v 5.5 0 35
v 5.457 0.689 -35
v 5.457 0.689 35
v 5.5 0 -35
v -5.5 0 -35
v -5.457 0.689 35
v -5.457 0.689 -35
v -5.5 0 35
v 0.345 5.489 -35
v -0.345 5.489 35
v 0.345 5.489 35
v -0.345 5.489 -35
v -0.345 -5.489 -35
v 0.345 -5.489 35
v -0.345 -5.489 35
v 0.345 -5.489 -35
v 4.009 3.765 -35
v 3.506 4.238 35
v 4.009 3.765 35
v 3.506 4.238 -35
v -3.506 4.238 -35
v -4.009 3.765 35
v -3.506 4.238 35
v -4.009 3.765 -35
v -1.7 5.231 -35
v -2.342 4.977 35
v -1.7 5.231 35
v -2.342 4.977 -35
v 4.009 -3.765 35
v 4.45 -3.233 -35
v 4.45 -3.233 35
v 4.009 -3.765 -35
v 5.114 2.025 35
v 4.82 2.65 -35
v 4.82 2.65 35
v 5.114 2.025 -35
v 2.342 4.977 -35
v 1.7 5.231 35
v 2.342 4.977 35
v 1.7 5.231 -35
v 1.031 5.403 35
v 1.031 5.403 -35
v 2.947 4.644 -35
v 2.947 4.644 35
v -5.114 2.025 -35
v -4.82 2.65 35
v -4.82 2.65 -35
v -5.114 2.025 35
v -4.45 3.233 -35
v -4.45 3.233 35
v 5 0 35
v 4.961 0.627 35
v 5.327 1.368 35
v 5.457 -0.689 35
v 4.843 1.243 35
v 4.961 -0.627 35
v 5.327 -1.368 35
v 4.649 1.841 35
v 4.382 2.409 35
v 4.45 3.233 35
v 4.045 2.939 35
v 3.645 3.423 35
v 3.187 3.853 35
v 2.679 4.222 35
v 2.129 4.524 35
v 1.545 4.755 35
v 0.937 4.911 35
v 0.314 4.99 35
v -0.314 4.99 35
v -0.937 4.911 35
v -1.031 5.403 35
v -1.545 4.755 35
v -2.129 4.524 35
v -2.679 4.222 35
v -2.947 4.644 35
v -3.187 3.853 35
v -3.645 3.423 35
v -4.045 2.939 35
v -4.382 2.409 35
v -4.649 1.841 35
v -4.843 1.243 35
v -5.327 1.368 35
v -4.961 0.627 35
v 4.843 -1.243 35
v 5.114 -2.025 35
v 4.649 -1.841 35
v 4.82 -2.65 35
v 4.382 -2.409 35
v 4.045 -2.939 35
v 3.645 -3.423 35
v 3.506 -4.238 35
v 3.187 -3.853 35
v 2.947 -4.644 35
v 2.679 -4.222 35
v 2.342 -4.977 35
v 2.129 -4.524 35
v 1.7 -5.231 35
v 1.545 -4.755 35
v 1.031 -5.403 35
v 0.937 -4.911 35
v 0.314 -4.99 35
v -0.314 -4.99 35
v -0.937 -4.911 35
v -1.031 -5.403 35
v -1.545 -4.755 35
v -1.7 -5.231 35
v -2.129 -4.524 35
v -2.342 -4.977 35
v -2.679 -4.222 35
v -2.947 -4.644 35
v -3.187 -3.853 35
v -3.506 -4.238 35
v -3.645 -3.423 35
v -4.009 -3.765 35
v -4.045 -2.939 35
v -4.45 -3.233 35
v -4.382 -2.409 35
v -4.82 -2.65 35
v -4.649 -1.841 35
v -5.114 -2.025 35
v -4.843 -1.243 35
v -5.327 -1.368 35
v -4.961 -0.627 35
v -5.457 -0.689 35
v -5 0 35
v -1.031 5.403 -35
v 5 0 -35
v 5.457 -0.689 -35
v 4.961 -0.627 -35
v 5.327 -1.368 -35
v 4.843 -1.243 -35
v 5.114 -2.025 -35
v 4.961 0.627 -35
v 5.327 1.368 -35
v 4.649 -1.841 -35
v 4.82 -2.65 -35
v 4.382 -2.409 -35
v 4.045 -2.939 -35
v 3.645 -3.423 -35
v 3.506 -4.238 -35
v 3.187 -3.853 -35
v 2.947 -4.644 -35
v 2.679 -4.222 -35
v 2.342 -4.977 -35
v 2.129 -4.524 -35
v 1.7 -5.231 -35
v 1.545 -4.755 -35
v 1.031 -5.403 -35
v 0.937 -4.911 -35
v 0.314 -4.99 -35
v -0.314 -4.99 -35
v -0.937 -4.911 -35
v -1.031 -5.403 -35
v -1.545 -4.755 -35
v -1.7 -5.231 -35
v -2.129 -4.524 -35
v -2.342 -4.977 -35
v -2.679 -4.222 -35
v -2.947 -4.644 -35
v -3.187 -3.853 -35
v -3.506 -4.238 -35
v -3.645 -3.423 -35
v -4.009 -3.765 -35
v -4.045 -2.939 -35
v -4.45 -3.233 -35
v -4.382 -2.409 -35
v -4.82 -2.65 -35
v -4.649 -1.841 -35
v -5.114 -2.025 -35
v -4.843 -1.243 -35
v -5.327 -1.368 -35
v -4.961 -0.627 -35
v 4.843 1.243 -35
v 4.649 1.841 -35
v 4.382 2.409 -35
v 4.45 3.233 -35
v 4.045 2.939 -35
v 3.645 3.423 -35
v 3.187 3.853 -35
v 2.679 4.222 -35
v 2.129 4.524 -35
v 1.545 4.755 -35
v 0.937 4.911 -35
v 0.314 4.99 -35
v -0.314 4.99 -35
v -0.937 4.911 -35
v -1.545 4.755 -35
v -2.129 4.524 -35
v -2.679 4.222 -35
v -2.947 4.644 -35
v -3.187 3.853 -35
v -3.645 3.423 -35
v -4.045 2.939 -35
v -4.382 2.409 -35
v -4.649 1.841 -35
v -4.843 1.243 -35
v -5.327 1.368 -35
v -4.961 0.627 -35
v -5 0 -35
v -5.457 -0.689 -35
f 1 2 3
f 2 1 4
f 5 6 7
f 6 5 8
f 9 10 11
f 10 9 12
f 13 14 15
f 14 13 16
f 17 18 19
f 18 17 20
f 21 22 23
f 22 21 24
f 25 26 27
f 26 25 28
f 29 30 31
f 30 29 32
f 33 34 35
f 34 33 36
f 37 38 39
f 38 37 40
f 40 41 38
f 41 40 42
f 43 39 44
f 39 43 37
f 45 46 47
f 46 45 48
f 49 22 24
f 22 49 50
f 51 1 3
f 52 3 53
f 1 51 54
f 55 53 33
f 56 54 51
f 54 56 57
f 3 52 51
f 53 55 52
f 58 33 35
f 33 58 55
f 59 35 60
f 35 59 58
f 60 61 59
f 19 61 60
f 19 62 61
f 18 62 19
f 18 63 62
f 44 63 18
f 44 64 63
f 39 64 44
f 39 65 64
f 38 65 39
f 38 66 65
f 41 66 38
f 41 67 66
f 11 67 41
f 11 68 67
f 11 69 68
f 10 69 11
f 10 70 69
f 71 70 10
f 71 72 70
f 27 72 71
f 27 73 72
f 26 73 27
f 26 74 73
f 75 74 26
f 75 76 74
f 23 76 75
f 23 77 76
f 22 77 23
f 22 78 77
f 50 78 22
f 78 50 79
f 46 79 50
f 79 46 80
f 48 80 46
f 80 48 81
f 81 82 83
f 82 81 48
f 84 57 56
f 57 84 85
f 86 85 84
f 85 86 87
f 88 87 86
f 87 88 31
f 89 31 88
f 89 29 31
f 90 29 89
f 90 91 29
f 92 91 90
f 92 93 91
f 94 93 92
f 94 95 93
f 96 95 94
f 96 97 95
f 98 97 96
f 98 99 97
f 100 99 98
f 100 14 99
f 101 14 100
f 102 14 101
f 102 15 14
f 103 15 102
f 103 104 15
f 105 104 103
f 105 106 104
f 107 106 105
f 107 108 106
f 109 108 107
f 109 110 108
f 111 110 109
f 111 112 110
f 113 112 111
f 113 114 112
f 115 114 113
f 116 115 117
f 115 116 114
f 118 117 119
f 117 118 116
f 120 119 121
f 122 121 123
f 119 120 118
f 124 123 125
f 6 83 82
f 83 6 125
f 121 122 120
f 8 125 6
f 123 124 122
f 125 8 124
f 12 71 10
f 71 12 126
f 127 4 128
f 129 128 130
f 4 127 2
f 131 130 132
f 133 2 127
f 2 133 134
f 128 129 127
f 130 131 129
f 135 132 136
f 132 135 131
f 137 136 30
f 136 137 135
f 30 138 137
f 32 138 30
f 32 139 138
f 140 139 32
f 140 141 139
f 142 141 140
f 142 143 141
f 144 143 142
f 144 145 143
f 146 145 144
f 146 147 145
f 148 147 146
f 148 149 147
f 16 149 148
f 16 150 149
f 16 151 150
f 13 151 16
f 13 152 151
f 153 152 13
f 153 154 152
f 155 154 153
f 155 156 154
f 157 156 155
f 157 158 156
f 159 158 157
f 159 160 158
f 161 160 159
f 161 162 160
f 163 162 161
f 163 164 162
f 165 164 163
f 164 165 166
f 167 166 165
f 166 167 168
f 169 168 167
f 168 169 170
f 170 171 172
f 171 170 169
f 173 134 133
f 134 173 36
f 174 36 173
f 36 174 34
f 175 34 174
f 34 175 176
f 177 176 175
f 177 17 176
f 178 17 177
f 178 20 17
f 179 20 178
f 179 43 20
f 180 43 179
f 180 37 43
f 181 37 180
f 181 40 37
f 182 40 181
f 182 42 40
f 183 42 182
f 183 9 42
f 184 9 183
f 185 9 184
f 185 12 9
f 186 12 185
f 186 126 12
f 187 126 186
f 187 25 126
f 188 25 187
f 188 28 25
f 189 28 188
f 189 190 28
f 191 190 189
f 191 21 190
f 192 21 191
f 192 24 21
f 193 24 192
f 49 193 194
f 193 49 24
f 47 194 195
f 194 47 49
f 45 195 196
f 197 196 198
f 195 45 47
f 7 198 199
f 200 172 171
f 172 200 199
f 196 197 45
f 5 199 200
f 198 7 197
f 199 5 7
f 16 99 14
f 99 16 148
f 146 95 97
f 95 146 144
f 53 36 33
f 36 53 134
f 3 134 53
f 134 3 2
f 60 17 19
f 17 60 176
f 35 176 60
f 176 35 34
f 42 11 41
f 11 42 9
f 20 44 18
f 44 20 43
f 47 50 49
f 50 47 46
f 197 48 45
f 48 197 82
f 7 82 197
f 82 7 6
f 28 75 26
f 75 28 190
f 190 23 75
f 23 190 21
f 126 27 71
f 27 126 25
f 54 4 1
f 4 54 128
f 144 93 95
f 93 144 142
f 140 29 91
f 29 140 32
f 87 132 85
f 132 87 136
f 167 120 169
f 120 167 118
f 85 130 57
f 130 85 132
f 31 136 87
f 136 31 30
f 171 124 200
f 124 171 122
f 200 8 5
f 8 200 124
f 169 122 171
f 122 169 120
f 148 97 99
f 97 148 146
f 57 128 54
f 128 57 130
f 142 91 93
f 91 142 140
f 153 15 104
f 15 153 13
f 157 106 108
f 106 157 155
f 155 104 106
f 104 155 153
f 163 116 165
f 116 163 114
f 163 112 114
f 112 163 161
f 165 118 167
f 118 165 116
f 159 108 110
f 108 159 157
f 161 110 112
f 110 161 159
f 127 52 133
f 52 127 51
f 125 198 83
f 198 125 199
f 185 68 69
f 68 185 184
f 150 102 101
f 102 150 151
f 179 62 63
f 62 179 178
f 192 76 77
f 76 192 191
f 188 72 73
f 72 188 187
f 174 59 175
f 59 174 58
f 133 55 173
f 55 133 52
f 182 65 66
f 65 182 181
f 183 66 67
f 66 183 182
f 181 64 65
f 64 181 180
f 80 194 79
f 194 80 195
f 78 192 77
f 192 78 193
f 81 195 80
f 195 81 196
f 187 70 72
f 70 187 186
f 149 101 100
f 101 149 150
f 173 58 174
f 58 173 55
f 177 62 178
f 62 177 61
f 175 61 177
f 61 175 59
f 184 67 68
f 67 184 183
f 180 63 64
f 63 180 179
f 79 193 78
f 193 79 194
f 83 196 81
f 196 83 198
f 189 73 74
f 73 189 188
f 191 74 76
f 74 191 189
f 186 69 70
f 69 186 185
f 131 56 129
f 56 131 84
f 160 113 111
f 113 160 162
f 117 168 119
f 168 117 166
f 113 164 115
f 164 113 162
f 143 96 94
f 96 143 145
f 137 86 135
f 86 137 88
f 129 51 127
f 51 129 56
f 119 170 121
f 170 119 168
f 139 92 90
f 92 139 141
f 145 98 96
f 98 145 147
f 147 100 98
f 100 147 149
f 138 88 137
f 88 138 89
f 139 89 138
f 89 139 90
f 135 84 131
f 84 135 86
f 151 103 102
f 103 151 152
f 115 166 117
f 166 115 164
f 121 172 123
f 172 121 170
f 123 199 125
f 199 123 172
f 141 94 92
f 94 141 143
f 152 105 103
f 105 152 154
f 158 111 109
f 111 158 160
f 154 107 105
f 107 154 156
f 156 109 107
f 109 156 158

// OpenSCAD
$fn = 50;


difference() {
	union() {
		translate(v = [0, 0, -35.0000000000]) {
			cylinder(h = 70, r = 5.5000000000);
		}
	}
	union() {
		translate(v = [0, 0, -100.0000000000]) {
			cylinder(h = 200, r = 5);
		}
	}
}
